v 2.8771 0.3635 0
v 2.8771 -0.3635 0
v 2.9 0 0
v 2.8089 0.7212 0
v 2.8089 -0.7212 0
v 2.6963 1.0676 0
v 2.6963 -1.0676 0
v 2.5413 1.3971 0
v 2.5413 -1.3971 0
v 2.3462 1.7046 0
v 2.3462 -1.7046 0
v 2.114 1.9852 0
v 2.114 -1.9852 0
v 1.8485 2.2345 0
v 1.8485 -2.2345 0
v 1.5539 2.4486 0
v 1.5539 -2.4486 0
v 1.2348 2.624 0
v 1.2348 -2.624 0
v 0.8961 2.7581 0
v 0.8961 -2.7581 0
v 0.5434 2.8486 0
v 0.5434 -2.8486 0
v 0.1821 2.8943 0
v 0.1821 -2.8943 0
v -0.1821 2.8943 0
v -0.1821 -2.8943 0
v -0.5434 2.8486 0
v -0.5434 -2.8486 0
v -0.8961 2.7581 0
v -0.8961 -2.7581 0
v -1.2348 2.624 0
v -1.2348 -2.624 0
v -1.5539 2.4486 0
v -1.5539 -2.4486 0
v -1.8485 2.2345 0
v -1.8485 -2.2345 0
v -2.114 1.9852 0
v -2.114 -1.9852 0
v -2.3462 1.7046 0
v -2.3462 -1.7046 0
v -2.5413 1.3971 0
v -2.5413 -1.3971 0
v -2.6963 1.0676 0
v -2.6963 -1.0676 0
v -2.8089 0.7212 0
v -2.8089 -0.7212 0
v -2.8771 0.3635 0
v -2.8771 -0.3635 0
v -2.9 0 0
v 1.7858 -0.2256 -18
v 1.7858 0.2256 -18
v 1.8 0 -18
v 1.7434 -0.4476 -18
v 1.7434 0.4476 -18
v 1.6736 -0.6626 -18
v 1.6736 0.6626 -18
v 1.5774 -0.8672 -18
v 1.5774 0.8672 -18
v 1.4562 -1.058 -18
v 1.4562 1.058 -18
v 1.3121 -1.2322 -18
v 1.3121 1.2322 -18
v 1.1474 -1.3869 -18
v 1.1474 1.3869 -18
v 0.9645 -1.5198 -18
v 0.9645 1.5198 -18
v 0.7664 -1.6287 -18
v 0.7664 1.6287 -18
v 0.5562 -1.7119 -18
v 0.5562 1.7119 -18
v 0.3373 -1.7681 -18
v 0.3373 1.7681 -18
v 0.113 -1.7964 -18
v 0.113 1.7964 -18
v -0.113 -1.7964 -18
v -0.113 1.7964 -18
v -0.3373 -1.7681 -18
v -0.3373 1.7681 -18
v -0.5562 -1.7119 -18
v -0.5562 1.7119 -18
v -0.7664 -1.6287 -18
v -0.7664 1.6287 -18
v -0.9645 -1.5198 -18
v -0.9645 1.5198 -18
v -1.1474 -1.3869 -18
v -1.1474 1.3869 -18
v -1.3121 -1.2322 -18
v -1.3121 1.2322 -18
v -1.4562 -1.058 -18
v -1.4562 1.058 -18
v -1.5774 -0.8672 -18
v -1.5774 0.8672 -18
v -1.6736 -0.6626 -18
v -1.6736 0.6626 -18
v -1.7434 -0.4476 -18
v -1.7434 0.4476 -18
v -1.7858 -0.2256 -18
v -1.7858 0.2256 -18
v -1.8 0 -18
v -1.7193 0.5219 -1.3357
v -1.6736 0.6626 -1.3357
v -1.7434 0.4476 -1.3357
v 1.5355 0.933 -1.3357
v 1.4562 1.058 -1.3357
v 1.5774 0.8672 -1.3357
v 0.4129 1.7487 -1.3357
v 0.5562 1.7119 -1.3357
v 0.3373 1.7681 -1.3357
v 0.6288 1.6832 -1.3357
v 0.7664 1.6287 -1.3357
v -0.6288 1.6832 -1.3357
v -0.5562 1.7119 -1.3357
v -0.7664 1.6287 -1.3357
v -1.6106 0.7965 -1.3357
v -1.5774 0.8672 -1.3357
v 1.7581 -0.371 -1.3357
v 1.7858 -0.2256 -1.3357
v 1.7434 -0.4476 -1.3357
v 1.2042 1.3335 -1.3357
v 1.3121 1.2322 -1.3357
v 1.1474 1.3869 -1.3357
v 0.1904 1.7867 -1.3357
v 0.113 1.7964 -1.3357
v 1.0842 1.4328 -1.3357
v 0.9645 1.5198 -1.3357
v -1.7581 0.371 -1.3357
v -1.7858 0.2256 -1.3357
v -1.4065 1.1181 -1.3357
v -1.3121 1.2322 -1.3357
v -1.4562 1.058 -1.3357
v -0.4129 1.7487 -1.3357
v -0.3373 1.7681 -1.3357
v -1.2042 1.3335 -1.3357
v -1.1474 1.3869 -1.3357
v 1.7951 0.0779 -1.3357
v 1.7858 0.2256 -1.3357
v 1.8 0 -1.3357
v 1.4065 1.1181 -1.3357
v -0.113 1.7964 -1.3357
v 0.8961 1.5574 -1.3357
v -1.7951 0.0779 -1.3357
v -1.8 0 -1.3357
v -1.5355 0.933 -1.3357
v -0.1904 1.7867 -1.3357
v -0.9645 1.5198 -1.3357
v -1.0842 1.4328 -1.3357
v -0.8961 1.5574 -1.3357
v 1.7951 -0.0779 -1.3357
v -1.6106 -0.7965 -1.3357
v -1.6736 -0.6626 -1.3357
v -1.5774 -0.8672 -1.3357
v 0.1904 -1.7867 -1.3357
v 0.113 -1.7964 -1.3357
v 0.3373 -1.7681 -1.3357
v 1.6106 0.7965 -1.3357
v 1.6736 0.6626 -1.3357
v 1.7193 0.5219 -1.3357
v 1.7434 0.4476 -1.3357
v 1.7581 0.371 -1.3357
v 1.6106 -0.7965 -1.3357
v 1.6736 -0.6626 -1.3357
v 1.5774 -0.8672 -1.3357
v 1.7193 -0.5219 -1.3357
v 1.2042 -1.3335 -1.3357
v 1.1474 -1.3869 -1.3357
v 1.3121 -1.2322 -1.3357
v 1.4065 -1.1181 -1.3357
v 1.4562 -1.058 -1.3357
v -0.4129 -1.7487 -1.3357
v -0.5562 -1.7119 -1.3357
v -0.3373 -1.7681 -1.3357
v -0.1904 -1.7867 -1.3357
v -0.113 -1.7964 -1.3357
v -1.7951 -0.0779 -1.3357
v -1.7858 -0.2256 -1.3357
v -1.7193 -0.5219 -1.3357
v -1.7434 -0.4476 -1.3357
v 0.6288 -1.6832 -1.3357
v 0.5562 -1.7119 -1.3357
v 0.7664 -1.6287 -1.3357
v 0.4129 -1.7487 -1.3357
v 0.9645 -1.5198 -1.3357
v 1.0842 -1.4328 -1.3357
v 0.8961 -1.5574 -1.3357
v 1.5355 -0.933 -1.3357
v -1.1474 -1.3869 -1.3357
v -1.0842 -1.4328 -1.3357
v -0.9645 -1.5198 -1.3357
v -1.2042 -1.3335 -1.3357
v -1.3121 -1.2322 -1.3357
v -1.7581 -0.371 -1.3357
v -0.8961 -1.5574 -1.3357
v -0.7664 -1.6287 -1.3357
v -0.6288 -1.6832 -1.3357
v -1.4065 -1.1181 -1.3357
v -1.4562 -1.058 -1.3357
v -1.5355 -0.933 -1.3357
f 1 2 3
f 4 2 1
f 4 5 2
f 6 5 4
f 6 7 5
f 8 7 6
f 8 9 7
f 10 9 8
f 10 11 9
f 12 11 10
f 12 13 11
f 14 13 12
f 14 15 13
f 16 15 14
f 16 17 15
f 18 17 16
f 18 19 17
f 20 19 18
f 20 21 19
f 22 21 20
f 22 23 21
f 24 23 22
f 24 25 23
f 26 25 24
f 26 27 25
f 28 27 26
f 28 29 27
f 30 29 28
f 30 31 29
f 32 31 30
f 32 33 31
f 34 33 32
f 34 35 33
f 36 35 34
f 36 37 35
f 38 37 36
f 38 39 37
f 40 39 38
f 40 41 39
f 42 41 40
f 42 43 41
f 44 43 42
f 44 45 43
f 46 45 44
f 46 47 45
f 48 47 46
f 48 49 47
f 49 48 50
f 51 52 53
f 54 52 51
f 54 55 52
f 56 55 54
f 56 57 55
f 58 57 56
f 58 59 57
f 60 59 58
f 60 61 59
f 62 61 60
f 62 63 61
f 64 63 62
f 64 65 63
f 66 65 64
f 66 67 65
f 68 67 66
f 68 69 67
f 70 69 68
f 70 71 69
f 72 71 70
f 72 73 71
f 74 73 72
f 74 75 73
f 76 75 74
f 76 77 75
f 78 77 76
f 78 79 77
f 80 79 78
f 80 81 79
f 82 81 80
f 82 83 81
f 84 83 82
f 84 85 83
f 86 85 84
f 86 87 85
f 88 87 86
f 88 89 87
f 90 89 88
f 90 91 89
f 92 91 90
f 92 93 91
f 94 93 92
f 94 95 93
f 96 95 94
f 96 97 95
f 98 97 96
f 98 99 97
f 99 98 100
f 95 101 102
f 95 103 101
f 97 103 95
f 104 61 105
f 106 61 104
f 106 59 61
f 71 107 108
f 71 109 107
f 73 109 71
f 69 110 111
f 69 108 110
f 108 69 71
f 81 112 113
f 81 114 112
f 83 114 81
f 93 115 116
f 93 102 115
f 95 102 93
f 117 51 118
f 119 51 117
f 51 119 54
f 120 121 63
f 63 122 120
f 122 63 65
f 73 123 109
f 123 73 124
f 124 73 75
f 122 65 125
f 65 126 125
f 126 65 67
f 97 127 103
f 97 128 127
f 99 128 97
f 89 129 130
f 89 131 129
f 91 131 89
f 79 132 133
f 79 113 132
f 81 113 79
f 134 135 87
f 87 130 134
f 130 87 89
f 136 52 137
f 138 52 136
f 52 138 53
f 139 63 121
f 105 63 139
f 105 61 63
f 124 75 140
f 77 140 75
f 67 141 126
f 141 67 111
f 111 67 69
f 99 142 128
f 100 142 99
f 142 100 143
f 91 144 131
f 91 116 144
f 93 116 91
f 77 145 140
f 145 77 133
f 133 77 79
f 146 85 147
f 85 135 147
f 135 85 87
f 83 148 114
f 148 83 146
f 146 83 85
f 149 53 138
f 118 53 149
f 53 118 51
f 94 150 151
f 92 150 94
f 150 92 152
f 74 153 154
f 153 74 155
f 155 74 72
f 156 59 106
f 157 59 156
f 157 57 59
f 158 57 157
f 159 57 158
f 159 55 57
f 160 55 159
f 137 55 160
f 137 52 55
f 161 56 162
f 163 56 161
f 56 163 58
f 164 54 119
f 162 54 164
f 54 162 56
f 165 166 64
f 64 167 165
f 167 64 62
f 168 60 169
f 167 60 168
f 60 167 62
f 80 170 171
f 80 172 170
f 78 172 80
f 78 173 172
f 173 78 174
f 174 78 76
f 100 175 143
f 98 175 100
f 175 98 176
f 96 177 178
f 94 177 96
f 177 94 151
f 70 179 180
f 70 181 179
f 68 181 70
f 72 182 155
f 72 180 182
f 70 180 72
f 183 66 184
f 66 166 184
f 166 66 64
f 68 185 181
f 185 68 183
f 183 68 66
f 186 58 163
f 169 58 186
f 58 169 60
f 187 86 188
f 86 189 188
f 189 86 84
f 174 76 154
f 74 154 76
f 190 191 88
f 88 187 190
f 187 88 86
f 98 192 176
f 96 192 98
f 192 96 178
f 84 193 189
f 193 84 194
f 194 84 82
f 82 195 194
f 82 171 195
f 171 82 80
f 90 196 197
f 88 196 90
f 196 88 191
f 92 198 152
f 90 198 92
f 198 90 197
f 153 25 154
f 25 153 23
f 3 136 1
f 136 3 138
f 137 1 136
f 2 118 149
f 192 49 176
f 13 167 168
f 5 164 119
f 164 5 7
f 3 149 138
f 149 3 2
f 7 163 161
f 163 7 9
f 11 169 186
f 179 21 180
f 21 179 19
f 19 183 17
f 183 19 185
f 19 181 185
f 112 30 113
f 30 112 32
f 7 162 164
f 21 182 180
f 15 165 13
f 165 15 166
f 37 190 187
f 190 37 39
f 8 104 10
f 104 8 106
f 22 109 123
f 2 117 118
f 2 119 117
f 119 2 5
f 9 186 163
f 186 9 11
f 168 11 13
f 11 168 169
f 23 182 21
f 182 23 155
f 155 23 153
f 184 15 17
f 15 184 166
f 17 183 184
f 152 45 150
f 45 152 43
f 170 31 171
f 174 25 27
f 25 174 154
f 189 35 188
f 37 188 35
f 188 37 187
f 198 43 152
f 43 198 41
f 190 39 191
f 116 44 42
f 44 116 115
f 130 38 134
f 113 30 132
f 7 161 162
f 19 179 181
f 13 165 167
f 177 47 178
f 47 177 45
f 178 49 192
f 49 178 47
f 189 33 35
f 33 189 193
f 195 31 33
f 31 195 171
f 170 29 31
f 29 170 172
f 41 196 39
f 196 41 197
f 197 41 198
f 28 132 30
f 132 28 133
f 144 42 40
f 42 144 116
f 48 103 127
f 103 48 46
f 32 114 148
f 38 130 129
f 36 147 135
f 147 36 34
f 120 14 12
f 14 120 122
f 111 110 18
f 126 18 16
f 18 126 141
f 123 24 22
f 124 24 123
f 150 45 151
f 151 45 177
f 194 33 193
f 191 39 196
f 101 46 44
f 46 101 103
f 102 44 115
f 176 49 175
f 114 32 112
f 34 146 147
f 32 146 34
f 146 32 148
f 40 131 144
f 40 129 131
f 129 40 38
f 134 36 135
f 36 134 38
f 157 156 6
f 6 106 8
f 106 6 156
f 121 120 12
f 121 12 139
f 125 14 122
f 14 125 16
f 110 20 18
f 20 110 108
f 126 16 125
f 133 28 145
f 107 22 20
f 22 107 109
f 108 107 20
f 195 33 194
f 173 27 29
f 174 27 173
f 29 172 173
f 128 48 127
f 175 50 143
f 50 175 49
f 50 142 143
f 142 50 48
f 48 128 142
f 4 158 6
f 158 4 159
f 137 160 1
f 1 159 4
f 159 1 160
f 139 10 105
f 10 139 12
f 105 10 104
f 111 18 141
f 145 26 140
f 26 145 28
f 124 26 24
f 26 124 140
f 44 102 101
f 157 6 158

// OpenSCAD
$fn = 50;


difference() {
	union() {
		translate(v = [0, 0, 0]) {
			rotate(a = [0, 0, 0]) {
				difference() {
					union() {
						translate(v = [0, 0, -18.0000000000]) {
							cylinder(h = 18, r = 1.5000000000);
						}
						translate(v = [0, 0, -18.0000000000]) {
							cylinder(h = 18, r = 1.8000000000);
						}
						translate(v = [0, 0, -1.7000000000]) {
							cylinder(h = 1.7000000000, r1 = 1.5000000000, r2 = 2.9000000000);
						}
						translate(v = [0, 0, -18.0000000000]) {
							cylinder(h = 18, r = 1.5000000000);
						}
					}
					union();
				}
			}
		}
	}
	union();
}
